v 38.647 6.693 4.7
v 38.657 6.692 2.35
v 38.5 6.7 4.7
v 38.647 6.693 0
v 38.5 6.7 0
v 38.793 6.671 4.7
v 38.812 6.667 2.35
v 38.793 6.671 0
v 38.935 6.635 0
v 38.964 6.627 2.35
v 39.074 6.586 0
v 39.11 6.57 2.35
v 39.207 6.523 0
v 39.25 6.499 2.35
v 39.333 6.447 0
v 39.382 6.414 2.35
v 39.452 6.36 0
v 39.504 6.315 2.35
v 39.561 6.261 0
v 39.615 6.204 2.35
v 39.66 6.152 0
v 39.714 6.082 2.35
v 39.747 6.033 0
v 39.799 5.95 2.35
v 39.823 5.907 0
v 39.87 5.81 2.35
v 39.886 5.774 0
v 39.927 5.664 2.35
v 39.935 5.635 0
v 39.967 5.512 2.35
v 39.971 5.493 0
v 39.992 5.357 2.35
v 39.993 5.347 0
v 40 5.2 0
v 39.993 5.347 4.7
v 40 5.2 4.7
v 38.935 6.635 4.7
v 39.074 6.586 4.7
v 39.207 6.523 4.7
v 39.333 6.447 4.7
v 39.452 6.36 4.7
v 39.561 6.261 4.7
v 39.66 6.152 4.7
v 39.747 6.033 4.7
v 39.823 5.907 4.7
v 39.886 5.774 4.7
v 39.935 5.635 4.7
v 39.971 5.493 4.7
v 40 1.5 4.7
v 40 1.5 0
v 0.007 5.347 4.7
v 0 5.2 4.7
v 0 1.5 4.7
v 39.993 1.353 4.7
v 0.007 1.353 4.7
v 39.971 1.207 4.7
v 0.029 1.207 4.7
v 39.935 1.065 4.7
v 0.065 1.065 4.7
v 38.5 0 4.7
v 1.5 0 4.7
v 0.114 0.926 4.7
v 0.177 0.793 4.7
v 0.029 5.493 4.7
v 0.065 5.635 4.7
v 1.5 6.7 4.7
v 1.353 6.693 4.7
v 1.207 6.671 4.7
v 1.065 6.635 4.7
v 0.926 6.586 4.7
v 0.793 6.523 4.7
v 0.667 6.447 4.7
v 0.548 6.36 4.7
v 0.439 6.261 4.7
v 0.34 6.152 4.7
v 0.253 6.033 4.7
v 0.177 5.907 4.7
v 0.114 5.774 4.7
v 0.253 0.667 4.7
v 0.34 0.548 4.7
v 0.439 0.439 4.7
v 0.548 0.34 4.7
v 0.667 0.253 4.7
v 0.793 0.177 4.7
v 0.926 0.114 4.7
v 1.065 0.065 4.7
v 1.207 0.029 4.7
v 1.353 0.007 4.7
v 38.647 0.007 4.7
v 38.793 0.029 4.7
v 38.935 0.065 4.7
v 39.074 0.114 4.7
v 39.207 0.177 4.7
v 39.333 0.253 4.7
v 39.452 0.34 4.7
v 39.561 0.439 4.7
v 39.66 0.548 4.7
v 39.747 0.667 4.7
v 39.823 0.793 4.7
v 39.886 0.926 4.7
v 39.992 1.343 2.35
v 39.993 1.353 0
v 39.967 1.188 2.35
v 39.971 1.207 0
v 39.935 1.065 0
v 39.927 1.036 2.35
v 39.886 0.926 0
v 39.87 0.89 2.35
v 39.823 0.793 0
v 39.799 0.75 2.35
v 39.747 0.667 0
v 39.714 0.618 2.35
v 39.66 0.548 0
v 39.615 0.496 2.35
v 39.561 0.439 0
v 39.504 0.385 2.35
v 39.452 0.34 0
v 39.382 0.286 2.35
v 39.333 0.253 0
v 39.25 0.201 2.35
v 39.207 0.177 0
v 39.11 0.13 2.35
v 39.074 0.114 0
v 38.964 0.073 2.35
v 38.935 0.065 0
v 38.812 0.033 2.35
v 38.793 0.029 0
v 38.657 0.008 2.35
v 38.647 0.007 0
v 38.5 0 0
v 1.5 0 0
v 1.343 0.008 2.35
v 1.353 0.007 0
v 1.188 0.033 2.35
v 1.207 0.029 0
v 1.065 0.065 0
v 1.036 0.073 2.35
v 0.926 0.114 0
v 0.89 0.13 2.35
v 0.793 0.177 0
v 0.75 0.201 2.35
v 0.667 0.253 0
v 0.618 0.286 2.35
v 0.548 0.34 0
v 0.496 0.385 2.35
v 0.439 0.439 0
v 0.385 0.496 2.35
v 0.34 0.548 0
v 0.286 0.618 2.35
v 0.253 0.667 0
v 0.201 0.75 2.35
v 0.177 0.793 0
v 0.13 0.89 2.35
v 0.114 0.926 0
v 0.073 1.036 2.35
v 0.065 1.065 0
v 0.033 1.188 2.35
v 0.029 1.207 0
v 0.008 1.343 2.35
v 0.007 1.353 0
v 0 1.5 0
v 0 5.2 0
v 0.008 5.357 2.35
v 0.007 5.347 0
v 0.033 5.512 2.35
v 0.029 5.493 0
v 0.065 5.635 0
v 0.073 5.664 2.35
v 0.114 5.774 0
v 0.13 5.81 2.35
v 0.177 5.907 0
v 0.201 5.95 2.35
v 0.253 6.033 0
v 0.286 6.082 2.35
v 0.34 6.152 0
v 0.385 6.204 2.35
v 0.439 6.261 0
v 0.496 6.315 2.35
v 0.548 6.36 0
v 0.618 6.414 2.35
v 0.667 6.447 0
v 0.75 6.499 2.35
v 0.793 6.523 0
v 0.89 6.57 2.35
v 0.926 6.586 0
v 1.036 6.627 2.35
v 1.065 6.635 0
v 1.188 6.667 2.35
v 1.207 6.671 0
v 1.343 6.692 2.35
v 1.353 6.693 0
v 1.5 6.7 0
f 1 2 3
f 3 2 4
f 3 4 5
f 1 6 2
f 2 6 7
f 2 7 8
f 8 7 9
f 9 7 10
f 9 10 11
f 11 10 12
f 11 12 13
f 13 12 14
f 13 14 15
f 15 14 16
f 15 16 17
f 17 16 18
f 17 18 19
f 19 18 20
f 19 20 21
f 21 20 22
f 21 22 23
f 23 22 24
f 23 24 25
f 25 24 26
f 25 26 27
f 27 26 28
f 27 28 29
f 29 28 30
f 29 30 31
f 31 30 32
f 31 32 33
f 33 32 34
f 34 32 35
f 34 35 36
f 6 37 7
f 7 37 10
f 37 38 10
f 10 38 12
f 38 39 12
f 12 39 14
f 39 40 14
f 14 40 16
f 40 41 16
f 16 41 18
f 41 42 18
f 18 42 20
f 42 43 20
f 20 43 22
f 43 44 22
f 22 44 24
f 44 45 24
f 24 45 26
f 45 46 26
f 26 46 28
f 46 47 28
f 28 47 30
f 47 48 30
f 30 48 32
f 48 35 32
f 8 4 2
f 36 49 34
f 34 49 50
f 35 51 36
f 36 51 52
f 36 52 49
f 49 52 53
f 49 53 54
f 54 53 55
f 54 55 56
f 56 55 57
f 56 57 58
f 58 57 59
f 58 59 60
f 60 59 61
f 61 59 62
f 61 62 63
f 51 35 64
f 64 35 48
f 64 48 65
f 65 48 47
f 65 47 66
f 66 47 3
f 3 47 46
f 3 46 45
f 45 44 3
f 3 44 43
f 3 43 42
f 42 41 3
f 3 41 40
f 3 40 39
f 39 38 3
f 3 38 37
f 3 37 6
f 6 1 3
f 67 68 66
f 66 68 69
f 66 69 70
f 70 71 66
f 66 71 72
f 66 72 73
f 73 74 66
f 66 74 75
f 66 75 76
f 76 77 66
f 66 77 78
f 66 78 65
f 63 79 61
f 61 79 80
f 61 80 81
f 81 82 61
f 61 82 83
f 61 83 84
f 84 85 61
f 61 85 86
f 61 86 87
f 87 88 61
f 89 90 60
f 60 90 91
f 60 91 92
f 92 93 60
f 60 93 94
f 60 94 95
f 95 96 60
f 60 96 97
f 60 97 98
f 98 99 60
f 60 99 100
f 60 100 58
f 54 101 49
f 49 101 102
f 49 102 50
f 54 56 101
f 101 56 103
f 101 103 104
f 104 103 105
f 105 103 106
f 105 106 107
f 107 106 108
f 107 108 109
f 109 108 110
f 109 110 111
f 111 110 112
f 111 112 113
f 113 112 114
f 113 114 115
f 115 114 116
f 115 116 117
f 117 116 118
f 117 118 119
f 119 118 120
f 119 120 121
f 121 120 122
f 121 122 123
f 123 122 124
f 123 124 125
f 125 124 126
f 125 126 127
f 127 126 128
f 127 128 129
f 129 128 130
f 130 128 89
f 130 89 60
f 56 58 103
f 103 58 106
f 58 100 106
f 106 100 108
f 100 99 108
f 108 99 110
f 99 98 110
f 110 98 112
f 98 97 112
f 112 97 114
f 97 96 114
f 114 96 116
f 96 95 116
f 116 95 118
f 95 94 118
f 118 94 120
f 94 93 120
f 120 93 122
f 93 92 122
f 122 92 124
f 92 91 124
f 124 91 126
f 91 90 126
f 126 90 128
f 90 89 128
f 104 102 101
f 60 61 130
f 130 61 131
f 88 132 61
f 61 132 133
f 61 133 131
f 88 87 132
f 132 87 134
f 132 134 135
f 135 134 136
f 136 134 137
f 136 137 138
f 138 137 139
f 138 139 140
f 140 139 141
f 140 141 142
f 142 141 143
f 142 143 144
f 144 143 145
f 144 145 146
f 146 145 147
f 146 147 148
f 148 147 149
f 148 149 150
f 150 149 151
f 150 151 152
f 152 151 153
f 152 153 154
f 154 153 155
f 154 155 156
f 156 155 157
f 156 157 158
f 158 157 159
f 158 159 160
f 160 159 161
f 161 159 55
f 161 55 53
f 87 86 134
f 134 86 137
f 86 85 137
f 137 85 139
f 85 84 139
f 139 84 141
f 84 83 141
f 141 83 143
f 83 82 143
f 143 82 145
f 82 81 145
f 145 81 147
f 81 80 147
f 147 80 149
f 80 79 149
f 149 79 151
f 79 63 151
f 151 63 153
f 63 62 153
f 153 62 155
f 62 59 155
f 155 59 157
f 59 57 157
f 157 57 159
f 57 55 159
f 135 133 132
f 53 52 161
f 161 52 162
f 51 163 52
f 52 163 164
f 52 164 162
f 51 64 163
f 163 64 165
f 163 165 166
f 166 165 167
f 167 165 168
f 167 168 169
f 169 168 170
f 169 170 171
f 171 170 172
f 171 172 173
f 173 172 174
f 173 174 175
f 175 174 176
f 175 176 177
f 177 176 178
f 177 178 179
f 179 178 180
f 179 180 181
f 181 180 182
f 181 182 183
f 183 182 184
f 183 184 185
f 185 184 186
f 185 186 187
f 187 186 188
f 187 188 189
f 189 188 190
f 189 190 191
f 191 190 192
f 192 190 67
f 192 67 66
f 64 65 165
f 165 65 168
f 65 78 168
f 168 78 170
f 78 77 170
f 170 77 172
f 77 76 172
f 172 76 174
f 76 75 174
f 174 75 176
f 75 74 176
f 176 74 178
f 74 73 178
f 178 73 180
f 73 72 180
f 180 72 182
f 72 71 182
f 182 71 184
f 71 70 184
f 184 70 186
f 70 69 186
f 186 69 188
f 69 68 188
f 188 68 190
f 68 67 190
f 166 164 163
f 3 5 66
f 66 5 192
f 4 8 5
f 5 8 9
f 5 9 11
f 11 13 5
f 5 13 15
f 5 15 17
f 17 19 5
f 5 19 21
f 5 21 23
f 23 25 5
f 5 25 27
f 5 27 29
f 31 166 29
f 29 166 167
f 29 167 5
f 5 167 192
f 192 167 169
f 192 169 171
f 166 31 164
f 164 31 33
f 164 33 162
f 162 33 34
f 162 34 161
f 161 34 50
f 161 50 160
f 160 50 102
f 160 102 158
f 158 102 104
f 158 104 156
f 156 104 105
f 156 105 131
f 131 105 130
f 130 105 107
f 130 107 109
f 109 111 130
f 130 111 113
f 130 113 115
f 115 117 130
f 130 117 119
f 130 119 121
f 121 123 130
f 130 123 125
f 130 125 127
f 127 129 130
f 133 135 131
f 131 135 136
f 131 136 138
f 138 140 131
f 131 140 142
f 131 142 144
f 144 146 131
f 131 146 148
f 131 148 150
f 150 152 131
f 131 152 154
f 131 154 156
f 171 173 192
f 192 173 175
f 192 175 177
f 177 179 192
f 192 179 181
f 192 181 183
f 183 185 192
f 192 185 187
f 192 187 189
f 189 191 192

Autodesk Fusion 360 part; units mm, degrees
sketch "Sketch1" plane through (0, 0, 0) normal (0, 0, 1) x (1, 0, 0)
  line L0 (0, 0) -> (40, 0)
  line L1 (40, 0) -> (40, 6)
  line L2 (40, 6) -> (0, 6)
  line L3 (0, 6) -> (0, 0)
  dimension "d1" = 40
  dimension "d2" = 6
extrude "Extrude1" add sketch "Sketch1" along normal blind 4
extrude "Extrude2" add 1 faces at (26.6667, 6, 1.3333) along direction (0, 1, 0) blind 0.7
extrude "Extrude3" add 1 faces at (13.3333, 4.4667, 4) along direction (0, 0, 1) blind 0.7
fillet "Fillet1" radius 1.5 4 edges at (0, 6.7, 2.35) (0, 0, 2.35) (40, 0, 2.35) (40, 6.7, 2.35)
